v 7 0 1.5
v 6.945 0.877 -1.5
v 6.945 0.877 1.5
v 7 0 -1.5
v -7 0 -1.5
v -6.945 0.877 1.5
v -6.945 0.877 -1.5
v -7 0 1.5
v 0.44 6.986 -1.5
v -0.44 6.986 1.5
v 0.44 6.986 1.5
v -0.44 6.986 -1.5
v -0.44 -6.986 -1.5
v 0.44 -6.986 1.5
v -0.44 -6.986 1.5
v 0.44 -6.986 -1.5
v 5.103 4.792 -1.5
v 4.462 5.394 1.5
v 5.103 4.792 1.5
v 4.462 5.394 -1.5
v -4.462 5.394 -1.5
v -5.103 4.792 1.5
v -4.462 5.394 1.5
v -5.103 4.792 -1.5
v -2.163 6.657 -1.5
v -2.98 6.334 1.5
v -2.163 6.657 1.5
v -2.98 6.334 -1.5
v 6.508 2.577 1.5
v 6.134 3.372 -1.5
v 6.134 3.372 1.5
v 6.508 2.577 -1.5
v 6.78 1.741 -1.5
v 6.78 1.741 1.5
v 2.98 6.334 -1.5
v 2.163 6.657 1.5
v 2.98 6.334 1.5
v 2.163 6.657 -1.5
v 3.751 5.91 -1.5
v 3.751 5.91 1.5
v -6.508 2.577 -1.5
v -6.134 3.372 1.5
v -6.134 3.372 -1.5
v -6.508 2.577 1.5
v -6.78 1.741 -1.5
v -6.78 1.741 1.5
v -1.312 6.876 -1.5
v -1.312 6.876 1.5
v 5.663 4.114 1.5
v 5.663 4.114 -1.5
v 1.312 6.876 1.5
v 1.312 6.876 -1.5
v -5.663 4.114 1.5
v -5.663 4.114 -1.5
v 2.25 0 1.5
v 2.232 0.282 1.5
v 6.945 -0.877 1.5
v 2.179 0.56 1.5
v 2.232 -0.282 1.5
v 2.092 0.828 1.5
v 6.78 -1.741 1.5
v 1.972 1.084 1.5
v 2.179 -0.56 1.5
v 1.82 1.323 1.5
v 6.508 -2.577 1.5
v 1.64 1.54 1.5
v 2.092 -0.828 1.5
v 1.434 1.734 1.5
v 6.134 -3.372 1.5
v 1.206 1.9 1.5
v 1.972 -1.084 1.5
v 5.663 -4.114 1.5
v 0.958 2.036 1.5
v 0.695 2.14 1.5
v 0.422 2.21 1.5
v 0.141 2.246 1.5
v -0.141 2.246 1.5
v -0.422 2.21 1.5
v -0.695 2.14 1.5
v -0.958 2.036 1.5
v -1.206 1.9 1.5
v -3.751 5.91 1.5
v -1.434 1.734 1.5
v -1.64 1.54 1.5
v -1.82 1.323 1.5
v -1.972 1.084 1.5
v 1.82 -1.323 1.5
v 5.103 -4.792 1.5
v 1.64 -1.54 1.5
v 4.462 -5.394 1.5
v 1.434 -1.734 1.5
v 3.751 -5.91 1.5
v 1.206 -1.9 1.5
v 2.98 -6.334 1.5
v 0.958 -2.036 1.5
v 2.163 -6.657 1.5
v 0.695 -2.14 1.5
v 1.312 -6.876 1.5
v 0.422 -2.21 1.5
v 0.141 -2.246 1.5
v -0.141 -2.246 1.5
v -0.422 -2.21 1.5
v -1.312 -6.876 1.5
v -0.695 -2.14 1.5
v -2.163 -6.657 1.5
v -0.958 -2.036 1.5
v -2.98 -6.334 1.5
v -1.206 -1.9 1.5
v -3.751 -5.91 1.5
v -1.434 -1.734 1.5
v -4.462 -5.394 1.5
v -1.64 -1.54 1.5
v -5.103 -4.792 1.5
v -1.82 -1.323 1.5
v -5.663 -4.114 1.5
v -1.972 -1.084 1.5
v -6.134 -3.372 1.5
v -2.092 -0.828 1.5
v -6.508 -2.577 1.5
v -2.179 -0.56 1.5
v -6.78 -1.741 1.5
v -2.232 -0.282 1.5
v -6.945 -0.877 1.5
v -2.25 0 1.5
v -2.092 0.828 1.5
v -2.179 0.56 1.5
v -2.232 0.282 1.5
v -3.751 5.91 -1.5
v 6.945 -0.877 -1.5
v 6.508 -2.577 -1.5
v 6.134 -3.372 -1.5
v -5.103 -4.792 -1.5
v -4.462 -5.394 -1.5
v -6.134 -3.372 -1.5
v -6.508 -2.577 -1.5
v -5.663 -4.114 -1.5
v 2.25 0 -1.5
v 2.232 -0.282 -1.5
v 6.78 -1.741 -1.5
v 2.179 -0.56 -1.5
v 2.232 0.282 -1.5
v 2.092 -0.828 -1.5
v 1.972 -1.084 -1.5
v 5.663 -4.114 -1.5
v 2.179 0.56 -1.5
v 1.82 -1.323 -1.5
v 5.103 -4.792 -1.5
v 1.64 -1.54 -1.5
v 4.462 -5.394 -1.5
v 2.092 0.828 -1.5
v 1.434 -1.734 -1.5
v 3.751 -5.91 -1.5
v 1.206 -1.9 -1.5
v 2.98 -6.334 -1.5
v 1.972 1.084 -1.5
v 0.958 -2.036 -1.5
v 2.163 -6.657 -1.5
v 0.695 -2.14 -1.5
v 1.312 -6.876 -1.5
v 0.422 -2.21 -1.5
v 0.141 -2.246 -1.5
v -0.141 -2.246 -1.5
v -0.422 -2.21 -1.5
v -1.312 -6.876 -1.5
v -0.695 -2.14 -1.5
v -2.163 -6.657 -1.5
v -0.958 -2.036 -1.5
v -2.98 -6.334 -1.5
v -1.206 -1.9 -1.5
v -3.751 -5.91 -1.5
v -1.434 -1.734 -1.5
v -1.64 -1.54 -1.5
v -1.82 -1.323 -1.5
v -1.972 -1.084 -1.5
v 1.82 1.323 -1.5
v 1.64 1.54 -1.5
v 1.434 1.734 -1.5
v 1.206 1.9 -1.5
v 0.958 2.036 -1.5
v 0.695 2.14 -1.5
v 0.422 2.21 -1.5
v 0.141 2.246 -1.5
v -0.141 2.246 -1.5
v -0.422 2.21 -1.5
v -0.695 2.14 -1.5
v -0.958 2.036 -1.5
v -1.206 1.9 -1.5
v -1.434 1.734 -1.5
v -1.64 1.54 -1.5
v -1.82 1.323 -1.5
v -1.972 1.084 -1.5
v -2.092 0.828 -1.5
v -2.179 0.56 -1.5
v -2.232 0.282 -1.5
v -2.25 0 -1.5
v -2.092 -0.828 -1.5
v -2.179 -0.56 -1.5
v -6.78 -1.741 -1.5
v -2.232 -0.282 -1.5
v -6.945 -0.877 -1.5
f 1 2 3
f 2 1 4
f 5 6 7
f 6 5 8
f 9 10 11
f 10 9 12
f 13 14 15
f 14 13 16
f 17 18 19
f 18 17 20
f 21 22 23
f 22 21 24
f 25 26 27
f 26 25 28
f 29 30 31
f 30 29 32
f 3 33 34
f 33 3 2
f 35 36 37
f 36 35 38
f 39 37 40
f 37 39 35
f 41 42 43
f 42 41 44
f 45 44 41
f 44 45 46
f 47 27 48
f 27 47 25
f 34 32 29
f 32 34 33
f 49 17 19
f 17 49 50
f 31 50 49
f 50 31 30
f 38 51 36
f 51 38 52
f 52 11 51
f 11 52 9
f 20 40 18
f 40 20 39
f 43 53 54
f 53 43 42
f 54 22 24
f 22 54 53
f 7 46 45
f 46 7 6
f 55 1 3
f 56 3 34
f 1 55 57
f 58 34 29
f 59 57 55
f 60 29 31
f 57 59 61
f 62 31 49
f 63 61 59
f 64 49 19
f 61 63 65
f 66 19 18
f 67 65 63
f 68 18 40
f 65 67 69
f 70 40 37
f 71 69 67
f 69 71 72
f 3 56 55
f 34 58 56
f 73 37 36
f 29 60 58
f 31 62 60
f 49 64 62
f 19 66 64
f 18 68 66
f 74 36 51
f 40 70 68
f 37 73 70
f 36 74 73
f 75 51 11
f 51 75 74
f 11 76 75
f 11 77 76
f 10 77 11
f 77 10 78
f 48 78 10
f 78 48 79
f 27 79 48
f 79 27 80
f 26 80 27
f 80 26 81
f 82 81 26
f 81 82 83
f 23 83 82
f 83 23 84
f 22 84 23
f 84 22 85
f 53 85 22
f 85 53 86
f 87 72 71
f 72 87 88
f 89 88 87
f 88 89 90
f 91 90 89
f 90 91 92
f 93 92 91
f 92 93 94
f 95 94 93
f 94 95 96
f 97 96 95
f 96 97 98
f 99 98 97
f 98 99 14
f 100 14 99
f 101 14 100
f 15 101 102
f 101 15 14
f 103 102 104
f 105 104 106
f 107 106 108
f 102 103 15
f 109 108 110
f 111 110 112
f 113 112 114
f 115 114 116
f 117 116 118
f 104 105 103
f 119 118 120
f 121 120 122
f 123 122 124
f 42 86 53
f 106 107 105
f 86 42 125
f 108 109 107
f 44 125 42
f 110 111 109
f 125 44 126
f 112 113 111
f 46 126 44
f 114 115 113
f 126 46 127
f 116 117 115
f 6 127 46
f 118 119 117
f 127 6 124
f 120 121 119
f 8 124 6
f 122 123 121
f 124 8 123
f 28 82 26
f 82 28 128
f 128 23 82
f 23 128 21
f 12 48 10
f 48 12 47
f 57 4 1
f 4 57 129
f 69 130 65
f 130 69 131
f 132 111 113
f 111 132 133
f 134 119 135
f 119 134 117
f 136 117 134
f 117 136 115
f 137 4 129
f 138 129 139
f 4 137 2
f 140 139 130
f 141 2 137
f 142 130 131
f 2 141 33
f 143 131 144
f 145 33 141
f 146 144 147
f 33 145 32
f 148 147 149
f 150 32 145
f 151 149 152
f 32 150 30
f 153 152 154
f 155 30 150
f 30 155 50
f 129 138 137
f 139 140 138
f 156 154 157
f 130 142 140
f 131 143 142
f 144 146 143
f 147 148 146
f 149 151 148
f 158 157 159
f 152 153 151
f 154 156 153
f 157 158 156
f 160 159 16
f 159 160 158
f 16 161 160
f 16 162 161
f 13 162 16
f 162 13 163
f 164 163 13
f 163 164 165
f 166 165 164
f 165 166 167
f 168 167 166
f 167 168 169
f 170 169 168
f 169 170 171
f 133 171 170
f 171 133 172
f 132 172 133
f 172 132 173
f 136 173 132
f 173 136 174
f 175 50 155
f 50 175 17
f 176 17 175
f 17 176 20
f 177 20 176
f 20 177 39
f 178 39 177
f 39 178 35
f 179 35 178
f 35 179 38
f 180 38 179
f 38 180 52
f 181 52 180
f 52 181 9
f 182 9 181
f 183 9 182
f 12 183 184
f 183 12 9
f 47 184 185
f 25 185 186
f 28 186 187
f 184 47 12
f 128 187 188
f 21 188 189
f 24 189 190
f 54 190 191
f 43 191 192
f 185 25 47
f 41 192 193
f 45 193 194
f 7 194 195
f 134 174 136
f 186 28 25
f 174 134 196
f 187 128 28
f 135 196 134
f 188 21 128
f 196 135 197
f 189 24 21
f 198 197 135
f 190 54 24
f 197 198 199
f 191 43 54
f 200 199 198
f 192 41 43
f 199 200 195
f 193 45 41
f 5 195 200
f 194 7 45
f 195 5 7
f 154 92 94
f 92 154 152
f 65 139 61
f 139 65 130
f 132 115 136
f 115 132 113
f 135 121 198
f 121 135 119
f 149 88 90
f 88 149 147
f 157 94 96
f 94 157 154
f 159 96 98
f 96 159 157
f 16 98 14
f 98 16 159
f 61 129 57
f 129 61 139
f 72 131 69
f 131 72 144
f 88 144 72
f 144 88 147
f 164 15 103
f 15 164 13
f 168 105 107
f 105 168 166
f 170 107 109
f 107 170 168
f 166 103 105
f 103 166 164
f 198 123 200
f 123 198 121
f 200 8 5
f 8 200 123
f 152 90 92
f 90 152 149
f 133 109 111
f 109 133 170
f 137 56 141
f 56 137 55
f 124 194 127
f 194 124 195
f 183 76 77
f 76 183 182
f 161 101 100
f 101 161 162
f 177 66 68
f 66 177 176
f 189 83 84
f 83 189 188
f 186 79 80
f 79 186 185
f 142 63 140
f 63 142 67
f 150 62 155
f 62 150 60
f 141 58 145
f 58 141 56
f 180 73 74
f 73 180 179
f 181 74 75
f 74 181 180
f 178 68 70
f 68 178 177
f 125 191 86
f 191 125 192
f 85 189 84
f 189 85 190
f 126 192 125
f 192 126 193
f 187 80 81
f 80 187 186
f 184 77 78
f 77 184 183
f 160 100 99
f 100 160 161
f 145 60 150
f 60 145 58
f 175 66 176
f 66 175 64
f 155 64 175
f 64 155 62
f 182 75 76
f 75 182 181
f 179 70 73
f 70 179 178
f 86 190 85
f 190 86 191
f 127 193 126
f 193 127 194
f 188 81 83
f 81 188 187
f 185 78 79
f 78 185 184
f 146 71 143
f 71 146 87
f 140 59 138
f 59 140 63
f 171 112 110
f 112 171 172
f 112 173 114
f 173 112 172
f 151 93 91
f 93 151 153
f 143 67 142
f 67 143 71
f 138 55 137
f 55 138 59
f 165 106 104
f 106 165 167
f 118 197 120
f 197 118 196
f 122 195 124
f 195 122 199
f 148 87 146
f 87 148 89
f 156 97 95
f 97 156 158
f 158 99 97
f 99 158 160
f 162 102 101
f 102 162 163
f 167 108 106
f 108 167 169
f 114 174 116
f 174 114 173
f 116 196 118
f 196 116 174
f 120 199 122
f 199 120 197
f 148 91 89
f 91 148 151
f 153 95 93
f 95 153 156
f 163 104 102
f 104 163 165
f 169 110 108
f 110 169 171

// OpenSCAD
$fn = 50;


difference() {
	union() {
		translate(v = [0, 0, -1.5000000000]) {
			cylinder(h = 3, r = 7.0000000000);
		}
	}
	union() {
		translate(v = [0, 0, -100.0000000000]) {
			cylinder(h = 200, r = 2.2500000000);
		}
	}
}
